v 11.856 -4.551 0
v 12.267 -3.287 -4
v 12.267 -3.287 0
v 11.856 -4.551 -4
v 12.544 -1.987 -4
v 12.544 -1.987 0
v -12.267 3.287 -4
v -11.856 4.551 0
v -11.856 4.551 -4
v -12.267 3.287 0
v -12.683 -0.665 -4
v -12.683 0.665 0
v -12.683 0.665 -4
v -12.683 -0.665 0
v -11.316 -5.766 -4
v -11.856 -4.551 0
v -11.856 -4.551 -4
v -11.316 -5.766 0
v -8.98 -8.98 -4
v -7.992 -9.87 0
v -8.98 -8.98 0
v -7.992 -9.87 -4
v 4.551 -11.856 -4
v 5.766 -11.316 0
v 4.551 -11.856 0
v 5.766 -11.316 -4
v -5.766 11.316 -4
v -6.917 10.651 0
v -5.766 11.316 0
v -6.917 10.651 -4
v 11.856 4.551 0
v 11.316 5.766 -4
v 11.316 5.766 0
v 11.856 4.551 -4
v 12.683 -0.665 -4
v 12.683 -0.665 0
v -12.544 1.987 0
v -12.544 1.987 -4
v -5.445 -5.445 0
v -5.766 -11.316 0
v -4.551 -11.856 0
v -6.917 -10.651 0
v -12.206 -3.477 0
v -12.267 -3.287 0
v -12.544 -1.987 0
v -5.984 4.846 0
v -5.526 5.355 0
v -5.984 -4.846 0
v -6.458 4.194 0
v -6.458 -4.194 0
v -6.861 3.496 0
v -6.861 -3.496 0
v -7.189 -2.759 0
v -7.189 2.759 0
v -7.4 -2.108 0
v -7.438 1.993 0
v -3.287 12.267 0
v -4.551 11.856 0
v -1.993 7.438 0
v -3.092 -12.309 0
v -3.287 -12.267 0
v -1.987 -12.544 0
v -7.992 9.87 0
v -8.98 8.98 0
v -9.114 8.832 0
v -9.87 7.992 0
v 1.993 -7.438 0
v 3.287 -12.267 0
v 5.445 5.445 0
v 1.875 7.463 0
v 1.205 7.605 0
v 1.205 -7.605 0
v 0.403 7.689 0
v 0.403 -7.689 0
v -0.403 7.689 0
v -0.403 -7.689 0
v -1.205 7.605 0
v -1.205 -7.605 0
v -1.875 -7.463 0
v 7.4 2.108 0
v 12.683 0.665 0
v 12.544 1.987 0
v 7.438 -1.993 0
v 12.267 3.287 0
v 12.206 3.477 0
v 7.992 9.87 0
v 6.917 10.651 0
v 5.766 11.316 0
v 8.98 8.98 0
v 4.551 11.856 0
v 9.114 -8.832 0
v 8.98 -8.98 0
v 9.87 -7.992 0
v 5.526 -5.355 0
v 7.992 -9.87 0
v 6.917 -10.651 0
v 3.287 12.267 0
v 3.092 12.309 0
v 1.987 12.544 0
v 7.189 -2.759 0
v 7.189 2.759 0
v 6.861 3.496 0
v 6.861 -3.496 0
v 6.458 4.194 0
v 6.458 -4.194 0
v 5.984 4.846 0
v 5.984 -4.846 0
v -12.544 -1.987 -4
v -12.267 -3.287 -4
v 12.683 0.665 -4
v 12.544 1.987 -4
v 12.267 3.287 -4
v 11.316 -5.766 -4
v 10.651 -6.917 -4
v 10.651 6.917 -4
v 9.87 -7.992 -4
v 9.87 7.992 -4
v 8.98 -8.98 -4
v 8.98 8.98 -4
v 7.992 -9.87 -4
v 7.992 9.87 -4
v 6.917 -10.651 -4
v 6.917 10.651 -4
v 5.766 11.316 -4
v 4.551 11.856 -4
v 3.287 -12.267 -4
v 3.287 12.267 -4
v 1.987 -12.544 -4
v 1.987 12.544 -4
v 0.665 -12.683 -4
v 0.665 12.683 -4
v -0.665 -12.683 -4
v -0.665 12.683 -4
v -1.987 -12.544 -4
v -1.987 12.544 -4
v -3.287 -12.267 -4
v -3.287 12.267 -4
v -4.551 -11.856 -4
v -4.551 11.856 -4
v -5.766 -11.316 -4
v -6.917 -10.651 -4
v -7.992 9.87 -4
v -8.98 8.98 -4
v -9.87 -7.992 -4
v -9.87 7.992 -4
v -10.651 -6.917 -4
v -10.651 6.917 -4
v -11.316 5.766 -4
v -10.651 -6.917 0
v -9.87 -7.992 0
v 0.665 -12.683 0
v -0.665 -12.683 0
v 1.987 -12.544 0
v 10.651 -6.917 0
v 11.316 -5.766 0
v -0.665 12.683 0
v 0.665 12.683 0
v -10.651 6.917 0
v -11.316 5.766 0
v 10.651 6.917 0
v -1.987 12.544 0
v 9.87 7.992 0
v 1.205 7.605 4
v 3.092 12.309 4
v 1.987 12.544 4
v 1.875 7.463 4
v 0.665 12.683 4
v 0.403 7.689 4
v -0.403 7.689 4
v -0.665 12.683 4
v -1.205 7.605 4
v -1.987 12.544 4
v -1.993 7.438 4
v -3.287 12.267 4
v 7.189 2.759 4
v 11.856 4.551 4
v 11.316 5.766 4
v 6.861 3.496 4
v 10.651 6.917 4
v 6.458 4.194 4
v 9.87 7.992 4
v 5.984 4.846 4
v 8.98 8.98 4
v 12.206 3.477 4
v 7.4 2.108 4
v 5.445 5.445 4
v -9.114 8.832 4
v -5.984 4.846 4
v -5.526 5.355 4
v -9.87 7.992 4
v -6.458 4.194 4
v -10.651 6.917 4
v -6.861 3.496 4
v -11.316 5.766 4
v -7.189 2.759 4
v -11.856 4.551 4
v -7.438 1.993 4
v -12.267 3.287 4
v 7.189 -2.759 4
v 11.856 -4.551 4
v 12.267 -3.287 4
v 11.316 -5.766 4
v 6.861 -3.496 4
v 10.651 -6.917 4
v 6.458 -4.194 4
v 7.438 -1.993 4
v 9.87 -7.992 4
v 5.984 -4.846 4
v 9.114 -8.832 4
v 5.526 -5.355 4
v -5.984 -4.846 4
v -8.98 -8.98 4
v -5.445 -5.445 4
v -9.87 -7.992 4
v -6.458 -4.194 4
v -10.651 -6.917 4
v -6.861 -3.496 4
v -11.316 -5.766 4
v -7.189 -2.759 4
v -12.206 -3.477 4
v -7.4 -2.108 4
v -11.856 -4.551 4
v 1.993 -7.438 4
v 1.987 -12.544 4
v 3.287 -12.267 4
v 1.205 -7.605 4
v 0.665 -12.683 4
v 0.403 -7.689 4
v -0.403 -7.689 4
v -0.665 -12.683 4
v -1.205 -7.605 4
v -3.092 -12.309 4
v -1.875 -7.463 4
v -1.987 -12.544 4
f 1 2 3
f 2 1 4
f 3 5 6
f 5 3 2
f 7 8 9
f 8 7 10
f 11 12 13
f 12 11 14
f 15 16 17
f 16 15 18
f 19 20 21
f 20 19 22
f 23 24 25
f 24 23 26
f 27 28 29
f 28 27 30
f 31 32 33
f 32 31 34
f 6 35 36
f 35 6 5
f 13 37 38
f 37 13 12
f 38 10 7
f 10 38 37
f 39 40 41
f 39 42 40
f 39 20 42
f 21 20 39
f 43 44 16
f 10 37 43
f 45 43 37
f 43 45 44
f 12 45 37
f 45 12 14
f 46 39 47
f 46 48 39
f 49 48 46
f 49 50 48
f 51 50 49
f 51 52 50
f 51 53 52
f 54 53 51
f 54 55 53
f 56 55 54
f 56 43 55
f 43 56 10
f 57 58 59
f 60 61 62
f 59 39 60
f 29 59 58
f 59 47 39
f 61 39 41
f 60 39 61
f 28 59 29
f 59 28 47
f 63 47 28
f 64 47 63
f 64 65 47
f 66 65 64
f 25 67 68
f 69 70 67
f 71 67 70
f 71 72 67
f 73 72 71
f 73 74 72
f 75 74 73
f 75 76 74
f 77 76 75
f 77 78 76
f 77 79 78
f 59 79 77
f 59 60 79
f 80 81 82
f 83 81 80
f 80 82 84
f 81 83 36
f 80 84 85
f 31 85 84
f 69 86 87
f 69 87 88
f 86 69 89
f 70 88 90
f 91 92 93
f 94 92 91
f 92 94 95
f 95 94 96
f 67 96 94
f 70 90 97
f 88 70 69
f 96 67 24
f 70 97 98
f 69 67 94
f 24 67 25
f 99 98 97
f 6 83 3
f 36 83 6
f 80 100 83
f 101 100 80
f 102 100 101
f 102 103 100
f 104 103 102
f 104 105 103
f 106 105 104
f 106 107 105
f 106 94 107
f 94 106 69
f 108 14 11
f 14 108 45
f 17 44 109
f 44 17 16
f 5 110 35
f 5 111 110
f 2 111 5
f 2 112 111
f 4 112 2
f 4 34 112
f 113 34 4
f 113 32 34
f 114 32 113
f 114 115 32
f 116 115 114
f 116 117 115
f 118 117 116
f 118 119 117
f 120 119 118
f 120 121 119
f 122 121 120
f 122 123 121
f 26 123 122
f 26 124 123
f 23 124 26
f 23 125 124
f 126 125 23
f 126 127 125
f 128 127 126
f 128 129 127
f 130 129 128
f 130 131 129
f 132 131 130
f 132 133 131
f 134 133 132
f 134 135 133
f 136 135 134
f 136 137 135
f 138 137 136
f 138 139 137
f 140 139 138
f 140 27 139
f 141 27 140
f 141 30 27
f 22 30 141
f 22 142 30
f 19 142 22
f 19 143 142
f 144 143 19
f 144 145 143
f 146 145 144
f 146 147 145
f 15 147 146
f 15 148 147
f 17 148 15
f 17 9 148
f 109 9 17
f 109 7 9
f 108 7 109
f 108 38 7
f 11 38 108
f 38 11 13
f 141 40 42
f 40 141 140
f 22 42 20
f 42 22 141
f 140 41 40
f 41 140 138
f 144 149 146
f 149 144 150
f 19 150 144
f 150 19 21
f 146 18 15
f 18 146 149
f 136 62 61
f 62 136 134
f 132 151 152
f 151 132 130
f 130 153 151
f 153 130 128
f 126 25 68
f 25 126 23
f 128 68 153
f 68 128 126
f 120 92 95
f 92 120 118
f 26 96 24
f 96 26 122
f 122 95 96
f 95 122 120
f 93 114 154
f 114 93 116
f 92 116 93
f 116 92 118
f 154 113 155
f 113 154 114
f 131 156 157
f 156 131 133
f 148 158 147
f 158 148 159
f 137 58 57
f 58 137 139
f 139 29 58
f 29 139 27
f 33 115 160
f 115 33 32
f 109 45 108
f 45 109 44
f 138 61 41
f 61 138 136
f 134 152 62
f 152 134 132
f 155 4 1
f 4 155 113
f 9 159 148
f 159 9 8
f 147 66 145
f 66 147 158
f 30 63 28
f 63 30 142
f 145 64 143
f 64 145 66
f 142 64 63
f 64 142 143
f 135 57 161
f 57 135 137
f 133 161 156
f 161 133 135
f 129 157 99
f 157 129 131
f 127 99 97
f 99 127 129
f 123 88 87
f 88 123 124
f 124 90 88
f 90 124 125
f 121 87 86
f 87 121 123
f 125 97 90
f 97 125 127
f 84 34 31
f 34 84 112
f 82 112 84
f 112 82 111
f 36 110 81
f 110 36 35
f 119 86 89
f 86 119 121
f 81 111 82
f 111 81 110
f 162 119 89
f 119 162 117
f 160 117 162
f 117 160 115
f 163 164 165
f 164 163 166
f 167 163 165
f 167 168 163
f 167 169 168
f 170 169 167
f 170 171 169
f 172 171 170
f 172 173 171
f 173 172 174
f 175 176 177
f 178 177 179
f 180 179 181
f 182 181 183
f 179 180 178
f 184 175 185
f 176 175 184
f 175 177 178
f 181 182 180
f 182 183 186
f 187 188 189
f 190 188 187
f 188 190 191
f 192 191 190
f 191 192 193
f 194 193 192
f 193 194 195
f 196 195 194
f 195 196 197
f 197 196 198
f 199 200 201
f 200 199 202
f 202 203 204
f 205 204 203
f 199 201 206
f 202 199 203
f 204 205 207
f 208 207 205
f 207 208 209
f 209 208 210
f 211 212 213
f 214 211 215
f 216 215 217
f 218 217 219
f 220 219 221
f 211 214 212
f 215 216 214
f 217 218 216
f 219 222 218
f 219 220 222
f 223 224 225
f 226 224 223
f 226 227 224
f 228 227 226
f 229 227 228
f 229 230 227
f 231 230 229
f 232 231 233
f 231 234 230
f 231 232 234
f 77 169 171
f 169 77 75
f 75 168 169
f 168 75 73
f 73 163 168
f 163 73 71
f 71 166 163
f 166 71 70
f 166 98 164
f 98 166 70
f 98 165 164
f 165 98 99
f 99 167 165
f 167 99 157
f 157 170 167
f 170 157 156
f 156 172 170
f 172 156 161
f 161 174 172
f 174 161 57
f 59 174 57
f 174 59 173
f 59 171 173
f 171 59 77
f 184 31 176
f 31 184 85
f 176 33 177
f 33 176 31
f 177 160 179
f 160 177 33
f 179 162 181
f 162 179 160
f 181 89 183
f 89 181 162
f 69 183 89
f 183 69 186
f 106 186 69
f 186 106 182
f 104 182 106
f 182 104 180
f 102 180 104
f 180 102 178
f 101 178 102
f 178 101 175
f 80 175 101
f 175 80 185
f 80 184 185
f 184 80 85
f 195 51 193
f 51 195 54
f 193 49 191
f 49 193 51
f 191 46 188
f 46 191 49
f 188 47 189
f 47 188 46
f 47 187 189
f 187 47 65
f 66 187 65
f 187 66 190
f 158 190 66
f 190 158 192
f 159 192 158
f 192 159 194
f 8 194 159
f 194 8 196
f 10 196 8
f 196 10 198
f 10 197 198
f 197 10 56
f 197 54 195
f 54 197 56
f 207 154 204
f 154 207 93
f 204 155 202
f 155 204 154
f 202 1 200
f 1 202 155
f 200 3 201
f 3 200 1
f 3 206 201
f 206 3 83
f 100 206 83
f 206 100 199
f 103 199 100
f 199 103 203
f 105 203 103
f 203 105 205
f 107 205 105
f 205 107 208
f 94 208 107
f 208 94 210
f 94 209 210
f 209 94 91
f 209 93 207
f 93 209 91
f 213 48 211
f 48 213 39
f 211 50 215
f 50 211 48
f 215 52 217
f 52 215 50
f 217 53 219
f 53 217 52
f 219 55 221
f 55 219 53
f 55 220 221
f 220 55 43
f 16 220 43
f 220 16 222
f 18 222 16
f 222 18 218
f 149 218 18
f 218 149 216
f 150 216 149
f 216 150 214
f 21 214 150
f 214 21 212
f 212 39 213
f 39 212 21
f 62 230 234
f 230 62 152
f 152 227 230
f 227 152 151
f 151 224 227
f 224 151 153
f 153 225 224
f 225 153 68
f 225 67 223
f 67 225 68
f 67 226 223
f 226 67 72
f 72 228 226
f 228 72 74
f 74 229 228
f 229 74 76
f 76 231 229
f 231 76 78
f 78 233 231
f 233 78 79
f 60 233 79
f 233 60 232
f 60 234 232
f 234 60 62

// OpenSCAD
$fn = 60;

step = 60;
diameter = 25.4;
radius = diameter/2;
halfStep = step/2 * 1.03;

rotate (-step/4) translate([0,0,-4]) linear_extrude(4) circle(d=25.4);

rotate (-step/4) 
linear_extrude(height=4) 
difference () {
    difference() {
        circle(d=25.4);
        circle(d=15.4);
    }
    for (i = [0:step:360]) {
        // The diameter is used so the triangle is much longer than the edges need
        // but long enough to clear out the entire wedge.
        polygon([
                [0,0],
                [diameter * cos(i), diameter * sin(i) ],
                [diameter * cos(i + (halfStep)), diameter * sin(i+(halfStep)) ]
                ]);
    }
}
